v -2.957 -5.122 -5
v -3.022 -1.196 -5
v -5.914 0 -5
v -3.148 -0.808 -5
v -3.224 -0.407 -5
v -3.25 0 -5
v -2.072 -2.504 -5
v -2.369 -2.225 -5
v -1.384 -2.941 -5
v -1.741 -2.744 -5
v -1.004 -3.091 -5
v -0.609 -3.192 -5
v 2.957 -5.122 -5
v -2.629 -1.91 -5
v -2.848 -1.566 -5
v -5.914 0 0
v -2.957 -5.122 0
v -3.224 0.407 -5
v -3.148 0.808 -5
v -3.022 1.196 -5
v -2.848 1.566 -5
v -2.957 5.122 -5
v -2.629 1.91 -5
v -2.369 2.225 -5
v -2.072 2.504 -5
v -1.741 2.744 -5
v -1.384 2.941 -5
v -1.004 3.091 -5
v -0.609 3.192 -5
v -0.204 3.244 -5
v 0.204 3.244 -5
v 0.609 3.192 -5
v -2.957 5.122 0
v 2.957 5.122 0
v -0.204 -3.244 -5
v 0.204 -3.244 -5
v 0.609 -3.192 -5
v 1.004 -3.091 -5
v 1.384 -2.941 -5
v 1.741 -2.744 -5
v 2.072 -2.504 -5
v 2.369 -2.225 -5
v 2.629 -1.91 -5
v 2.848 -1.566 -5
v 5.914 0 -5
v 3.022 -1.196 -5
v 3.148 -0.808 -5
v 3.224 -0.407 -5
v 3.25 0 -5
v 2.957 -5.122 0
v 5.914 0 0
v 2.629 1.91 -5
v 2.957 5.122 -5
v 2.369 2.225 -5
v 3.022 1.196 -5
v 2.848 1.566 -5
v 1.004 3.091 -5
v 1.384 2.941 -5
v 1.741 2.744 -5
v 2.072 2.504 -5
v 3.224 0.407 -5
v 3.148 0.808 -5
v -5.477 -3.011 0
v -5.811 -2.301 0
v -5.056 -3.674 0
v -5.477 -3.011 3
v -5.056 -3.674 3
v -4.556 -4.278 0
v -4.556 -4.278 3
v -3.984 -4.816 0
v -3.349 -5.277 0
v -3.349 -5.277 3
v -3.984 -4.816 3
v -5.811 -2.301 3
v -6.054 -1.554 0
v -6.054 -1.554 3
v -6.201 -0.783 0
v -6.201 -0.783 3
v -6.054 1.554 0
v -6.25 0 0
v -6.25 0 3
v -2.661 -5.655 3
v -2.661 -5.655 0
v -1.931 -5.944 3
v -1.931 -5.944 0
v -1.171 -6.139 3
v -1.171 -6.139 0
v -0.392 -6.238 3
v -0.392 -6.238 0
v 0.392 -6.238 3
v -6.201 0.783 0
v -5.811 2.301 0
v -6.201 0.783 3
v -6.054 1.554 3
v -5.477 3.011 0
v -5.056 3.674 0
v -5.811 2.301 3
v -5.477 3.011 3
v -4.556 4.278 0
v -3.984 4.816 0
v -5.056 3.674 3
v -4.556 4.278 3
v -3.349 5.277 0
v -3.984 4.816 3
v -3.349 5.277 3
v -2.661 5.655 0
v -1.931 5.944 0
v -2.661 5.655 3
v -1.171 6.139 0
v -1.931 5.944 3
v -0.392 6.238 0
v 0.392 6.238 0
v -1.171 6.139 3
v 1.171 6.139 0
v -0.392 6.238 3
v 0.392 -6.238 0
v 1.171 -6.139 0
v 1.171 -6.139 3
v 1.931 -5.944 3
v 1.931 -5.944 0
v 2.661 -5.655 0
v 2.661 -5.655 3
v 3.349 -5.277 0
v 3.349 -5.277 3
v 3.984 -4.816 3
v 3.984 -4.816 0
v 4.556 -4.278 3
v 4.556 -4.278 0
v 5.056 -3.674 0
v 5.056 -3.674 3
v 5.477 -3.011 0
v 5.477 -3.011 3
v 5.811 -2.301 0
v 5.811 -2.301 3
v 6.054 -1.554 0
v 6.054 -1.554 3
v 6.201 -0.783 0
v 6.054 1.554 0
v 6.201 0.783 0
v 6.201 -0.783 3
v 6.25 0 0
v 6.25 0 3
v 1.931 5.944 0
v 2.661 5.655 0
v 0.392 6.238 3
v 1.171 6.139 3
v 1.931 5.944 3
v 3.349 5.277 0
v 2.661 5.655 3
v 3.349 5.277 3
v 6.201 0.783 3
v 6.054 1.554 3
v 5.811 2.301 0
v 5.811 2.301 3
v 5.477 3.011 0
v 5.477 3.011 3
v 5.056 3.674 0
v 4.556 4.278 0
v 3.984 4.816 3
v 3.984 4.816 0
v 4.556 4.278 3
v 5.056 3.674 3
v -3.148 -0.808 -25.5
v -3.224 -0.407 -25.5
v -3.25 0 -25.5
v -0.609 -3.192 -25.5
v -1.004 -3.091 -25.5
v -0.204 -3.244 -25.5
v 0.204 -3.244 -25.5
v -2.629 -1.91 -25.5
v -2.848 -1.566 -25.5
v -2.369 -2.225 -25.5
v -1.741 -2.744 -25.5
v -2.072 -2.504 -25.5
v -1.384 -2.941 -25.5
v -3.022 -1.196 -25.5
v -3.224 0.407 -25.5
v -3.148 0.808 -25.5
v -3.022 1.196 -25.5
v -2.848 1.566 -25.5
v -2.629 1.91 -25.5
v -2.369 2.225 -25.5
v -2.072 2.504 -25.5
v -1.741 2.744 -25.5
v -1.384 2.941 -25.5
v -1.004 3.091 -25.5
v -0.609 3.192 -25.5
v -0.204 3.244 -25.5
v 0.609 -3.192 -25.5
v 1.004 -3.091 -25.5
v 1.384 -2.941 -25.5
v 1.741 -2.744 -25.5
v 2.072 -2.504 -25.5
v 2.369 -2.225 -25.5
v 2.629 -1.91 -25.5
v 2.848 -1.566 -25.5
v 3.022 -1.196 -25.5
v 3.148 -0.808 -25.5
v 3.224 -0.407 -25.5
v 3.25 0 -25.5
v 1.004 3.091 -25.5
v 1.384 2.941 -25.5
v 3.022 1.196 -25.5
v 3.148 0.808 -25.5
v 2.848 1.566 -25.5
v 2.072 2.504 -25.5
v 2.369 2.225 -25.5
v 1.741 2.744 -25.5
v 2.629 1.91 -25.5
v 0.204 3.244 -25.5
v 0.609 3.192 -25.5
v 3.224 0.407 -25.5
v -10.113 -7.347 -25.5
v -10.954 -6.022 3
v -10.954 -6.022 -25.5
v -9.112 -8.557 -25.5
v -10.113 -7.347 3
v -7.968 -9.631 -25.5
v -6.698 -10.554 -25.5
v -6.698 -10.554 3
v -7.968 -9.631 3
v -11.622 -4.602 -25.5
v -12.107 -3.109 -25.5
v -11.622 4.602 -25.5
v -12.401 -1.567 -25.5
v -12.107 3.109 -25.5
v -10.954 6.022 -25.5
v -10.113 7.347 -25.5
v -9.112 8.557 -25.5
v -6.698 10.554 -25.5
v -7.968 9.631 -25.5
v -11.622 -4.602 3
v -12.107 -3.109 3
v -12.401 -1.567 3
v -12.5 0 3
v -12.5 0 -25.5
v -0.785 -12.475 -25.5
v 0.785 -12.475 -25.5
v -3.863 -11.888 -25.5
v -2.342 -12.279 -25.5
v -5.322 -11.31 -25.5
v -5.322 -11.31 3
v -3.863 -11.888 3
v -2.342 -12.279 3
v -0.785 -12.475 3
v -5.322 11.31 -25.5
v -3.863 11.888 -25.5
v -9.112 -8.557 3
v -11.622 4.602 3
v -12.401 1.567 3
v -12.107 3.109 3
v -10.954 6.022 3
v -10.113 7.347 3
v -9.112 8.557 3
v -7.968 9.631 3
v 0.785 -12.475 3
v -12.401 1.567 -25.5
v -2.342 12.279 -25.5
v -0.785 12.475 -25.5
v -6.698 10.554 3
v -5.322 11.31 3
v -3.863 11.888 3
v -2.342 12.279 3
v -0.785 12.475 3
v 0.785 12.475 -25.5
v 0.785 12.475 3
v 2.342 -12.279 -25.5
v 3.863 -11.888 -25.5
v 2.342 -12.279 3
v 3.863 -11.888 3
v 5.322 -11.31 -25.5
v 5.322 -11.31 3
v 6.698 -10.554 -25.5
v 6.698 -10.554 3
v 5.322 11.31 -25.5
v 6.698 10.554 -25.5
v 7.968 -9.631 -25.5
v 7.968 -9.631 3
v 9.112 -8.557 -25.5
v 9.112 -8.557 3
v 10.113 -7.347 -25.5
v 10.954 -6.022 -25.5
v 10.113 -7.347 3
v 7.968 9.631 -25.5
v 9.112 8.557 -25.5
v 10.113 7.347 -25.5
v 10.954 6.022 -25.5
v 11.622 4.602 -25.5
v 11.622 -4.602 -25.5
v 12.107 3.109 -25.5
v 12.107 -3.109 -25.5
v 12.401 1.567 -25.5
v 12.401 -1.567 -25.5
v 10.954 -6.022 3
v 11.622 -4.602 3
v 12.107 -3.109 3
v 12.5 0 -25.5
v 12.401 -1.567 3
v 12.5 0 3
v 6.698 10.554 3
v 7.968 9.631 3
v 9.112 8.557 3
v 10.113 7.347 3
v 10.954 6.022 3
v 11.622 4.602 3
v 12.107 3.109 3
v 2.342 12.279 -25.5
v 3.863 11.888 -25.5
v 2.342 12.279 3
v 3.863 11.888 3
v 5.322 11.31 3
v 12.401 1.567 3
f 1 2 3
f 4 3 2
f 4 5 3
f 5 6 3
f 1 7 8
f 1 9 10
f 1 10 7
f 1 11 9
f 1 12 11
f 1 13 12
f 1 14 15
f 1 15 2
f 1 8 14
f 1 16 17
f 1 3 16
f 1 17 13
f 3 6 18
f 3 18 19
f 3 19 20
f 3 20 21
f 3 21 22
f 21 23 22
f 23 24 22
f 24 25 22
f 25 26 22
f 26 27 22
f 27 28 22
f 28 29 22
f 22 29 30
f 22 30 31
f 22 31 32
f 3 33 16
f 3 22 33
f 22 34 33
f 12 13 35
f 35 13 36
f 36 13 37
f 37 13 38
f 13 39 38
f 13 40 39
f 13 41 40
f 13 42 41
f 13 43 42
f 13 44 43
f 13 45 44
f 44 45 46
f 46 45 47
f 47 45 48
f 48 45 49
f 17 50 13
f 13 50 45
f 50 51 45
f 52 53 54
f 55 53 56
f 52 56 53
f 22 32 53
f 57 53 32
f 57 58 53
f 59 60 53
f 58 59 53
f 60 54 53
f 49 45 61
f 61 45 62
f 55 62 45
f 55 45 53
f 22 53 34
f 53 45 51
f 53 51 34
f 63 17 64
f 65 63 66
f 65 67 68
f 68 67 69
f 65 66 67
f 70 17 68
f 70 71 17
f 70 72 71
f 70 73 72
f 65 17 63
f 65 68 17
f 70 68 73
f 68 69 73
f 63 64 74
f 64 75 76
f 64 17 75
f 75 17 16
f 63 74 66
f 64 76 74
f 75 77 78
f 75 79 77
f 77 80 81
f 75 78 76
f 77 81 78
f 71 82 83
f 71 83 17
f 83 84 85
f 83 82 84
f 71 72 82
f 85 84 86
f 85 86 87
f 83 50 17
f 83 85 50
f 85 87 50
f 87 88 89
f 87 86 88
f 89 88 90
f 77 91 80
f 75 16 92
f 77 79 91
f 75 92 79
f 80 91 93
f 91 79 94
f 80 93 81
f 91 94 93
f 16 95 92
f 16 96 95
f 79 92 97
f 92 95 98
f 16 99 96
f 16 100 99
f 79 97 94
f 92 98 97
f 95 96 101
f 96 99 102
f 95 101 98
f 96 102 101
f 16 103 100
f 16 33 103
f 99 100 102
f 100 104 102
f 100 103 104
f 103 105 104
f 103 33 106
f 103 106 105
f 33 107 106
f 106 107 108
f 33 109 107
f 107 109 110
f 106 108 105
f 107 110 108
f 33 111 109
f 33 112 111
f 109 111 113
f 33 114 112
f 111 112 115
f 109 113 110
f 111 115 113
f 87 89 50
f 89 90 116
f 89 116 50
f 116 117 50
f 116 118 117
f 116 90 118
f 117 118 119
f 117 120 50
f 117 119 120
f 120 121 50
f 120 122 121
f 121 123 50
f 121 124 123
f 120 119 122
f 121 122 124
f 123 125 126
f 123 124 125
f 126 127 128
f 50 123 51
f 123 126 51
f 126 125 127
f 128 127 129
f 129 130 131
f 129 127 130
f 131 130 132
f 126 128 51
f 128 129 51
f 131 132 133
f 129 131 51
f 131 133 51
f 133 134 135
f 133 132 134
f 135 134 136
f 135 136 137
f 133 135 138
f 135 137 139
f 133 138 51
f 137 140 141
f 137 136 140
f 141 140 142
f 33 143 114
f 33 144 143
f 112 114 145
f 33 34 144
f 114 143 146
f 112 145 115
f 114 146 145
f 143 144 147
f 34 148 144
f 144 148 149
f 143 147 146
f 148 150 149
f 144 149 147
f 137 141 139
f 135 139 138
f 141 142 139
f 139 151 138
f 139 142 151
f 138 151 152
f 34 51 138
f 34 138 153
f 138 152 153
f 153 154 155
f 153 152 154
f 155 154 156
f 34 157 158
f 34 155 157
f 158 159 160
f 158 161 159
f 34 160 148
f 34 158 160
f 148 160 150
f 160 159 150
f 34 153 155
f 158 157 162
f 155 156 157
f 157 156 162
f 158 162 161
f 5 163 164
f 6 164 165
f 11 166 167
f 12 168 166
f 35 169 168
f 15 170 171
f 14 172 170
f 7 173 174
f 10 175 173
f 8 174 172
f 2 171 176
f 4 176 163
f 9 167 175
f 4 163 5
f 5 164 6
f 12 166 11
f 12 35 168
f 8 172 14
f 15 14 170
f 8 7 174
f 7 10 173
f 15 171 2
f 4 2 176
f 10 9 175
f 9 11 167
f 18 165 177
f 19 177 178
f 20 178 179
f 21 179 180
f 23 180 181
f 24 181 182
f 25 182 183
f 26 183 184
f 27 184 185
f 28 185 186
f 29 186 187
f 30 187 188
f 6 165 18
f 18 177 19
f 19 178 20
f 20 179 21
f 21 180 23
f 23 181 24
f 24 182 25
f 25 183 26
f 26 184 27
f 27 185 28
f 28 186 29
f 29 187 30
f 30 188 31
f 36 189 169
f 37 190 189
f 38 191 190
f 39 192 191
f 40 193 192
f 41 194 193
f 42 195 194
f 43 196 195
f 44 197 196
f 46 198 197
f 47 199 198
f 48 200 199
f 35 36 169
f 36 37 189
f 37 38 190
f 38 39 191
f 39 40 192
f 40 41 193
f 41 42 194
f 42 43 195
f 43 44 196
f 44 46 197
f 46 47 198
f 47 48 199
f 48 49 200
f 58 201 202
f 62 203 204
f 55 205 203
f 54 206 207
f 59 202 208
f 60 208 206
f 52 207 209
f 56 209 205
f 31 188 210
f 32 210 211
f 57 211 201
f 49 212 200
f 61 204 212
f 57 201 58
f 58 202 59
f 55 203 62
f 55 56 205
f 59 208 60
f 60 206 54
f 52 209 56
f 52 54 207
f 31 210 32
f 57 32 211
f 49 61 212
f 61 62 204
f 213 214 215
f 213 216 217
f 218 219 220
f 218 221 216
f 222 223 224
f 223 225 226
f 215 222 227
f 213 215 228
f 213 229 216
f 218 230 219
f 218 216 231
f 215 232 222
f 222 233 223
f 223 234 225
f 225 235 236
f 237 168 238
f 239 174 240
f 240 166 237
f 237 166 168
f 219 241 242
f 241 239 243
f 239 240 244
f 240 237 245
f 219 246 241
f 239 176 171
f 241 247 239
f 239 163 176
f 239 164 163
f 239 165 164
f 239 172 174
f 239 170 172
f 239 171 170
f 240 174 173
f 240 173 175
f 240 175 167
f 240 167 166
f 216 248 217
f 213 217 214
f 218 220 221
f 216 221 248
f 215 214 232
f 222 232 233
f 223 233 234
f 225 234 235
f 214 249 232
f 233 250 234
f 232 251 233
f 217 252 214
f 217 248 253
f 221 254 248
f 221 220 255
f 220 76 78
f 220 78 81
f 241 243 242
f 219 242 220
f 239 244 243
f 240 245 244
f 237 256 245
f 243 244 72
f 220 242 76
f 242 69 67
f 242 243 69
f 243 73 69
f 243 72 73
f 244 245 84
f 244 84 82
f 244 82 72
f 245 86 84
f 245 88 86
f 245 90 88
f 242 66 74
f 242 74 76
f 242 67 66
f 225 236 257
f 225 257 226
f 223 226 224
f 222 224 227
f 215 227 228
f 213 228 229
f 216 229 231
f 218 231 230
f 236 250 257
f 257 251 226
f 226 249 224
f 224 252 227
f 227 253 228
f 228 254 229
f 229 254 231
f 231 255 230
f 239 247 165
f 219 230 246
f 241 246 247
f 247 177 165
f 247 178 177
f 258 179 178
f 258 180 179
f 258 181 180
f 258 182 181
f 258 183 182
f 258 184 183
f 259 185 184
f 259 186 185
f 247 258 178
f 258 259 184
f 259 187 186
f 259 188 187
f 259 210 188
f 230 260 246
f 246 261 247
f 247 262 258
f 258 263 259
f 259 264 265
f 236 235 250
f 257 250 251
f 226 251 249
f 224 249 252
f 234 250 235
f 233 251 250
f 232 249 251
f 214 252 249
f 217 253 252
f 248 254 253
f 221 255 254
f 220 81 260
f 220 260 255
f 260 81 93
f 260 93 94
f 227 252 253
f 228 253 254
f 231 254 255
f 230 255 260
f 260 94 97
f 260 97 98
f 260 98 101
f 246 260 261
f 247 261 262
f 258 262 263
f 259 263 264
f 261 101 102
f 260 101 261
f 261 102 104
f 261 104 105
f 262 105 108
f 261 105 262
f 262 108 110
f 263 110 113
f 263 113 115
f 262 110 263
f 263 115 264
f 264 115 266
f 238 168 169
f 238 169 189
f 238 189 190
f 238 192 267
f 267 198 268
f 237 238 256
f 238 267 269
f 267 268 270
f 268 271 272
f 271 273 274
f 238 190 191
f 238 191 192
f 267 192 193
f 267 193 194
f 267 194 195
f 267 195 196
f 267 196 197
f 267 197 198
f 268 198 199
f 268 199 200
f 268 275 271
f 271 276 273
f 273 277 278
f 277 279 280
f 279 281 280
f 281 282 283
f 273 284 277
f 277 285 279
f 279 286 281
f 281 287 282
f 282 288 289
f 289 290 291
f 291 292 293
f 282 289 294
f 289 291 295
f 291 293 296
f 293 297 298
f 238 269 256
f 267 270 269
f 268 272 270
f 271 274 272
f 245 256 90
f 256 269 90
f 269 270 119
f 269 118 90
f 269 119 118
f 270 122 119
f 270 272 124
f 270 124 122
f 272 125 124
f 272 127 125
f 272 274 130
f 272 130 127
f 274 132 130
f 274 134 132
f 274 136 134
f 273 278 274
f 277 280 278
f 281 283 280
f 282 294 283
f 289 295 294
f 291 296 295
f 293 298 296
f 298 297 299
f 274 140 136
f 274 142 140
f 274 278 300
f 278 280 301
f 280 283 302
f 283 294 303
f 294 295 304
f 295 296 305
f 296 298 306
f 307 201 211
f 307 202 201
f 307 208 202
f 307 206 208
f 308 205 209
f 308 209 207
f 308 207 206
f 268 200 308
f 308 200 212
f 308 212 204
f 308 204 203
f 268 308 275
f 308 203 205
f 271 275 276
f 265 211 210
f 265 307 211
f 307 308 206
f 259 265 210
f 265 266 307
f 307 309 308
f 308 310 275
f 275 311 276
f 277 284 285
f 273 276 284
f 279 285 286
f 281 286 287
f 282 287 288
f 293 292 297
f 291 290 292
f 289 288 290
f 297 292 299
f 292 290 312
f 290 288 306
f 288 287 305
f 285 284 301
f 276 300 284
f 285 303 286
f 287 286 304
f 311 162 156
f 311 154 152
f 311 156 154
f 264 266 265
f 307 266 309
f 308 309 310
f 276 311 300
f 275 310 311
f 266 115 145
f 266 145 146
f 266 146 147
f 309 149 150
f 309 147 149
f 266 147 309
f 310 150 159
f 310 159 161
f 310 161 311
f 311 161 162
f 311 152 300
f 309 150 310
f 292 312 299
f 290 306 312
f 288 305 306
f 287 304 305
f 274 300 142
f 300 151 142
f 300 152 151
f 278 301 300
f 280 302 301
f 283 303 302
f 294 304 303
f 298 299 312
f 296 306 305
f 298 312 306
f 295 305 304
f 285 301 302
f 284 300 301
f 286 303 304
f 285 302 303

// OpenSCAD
$fn = 50;

difference() {
	union() {
		translate(v = [0, 0, -25.5]) {
			cylinder(h = 28.5, r = 12.5);
		}
	}
	union() {
		translate(v = [0, 0, 0]) {
			rotate(a = [0, 0, 0]) {
				difference() {
					union() {
						translate(v = [0, 0, -5]) {
							linear_extrude(height = 5) {
								polygon(points = [[5.914249999999999, 0.0], [2.957125, 5.1218907443321156], [-2.9571249999999982, 5.1218907443321156], [-5.914249999999999, 7.242867331857232e-16], [-2.9571250000000022, -5.121890744332115], [2.9571249999999956, -5.121890744332118]]);
							}
						}
					}
					union();
				}
			}
		}
		#cylinder(h = 3, r = 6.25);
		#translate(v = [0, 0, -100.0]) {
			cylinder(h = 200, r = 3.25);
		}
	}
}
